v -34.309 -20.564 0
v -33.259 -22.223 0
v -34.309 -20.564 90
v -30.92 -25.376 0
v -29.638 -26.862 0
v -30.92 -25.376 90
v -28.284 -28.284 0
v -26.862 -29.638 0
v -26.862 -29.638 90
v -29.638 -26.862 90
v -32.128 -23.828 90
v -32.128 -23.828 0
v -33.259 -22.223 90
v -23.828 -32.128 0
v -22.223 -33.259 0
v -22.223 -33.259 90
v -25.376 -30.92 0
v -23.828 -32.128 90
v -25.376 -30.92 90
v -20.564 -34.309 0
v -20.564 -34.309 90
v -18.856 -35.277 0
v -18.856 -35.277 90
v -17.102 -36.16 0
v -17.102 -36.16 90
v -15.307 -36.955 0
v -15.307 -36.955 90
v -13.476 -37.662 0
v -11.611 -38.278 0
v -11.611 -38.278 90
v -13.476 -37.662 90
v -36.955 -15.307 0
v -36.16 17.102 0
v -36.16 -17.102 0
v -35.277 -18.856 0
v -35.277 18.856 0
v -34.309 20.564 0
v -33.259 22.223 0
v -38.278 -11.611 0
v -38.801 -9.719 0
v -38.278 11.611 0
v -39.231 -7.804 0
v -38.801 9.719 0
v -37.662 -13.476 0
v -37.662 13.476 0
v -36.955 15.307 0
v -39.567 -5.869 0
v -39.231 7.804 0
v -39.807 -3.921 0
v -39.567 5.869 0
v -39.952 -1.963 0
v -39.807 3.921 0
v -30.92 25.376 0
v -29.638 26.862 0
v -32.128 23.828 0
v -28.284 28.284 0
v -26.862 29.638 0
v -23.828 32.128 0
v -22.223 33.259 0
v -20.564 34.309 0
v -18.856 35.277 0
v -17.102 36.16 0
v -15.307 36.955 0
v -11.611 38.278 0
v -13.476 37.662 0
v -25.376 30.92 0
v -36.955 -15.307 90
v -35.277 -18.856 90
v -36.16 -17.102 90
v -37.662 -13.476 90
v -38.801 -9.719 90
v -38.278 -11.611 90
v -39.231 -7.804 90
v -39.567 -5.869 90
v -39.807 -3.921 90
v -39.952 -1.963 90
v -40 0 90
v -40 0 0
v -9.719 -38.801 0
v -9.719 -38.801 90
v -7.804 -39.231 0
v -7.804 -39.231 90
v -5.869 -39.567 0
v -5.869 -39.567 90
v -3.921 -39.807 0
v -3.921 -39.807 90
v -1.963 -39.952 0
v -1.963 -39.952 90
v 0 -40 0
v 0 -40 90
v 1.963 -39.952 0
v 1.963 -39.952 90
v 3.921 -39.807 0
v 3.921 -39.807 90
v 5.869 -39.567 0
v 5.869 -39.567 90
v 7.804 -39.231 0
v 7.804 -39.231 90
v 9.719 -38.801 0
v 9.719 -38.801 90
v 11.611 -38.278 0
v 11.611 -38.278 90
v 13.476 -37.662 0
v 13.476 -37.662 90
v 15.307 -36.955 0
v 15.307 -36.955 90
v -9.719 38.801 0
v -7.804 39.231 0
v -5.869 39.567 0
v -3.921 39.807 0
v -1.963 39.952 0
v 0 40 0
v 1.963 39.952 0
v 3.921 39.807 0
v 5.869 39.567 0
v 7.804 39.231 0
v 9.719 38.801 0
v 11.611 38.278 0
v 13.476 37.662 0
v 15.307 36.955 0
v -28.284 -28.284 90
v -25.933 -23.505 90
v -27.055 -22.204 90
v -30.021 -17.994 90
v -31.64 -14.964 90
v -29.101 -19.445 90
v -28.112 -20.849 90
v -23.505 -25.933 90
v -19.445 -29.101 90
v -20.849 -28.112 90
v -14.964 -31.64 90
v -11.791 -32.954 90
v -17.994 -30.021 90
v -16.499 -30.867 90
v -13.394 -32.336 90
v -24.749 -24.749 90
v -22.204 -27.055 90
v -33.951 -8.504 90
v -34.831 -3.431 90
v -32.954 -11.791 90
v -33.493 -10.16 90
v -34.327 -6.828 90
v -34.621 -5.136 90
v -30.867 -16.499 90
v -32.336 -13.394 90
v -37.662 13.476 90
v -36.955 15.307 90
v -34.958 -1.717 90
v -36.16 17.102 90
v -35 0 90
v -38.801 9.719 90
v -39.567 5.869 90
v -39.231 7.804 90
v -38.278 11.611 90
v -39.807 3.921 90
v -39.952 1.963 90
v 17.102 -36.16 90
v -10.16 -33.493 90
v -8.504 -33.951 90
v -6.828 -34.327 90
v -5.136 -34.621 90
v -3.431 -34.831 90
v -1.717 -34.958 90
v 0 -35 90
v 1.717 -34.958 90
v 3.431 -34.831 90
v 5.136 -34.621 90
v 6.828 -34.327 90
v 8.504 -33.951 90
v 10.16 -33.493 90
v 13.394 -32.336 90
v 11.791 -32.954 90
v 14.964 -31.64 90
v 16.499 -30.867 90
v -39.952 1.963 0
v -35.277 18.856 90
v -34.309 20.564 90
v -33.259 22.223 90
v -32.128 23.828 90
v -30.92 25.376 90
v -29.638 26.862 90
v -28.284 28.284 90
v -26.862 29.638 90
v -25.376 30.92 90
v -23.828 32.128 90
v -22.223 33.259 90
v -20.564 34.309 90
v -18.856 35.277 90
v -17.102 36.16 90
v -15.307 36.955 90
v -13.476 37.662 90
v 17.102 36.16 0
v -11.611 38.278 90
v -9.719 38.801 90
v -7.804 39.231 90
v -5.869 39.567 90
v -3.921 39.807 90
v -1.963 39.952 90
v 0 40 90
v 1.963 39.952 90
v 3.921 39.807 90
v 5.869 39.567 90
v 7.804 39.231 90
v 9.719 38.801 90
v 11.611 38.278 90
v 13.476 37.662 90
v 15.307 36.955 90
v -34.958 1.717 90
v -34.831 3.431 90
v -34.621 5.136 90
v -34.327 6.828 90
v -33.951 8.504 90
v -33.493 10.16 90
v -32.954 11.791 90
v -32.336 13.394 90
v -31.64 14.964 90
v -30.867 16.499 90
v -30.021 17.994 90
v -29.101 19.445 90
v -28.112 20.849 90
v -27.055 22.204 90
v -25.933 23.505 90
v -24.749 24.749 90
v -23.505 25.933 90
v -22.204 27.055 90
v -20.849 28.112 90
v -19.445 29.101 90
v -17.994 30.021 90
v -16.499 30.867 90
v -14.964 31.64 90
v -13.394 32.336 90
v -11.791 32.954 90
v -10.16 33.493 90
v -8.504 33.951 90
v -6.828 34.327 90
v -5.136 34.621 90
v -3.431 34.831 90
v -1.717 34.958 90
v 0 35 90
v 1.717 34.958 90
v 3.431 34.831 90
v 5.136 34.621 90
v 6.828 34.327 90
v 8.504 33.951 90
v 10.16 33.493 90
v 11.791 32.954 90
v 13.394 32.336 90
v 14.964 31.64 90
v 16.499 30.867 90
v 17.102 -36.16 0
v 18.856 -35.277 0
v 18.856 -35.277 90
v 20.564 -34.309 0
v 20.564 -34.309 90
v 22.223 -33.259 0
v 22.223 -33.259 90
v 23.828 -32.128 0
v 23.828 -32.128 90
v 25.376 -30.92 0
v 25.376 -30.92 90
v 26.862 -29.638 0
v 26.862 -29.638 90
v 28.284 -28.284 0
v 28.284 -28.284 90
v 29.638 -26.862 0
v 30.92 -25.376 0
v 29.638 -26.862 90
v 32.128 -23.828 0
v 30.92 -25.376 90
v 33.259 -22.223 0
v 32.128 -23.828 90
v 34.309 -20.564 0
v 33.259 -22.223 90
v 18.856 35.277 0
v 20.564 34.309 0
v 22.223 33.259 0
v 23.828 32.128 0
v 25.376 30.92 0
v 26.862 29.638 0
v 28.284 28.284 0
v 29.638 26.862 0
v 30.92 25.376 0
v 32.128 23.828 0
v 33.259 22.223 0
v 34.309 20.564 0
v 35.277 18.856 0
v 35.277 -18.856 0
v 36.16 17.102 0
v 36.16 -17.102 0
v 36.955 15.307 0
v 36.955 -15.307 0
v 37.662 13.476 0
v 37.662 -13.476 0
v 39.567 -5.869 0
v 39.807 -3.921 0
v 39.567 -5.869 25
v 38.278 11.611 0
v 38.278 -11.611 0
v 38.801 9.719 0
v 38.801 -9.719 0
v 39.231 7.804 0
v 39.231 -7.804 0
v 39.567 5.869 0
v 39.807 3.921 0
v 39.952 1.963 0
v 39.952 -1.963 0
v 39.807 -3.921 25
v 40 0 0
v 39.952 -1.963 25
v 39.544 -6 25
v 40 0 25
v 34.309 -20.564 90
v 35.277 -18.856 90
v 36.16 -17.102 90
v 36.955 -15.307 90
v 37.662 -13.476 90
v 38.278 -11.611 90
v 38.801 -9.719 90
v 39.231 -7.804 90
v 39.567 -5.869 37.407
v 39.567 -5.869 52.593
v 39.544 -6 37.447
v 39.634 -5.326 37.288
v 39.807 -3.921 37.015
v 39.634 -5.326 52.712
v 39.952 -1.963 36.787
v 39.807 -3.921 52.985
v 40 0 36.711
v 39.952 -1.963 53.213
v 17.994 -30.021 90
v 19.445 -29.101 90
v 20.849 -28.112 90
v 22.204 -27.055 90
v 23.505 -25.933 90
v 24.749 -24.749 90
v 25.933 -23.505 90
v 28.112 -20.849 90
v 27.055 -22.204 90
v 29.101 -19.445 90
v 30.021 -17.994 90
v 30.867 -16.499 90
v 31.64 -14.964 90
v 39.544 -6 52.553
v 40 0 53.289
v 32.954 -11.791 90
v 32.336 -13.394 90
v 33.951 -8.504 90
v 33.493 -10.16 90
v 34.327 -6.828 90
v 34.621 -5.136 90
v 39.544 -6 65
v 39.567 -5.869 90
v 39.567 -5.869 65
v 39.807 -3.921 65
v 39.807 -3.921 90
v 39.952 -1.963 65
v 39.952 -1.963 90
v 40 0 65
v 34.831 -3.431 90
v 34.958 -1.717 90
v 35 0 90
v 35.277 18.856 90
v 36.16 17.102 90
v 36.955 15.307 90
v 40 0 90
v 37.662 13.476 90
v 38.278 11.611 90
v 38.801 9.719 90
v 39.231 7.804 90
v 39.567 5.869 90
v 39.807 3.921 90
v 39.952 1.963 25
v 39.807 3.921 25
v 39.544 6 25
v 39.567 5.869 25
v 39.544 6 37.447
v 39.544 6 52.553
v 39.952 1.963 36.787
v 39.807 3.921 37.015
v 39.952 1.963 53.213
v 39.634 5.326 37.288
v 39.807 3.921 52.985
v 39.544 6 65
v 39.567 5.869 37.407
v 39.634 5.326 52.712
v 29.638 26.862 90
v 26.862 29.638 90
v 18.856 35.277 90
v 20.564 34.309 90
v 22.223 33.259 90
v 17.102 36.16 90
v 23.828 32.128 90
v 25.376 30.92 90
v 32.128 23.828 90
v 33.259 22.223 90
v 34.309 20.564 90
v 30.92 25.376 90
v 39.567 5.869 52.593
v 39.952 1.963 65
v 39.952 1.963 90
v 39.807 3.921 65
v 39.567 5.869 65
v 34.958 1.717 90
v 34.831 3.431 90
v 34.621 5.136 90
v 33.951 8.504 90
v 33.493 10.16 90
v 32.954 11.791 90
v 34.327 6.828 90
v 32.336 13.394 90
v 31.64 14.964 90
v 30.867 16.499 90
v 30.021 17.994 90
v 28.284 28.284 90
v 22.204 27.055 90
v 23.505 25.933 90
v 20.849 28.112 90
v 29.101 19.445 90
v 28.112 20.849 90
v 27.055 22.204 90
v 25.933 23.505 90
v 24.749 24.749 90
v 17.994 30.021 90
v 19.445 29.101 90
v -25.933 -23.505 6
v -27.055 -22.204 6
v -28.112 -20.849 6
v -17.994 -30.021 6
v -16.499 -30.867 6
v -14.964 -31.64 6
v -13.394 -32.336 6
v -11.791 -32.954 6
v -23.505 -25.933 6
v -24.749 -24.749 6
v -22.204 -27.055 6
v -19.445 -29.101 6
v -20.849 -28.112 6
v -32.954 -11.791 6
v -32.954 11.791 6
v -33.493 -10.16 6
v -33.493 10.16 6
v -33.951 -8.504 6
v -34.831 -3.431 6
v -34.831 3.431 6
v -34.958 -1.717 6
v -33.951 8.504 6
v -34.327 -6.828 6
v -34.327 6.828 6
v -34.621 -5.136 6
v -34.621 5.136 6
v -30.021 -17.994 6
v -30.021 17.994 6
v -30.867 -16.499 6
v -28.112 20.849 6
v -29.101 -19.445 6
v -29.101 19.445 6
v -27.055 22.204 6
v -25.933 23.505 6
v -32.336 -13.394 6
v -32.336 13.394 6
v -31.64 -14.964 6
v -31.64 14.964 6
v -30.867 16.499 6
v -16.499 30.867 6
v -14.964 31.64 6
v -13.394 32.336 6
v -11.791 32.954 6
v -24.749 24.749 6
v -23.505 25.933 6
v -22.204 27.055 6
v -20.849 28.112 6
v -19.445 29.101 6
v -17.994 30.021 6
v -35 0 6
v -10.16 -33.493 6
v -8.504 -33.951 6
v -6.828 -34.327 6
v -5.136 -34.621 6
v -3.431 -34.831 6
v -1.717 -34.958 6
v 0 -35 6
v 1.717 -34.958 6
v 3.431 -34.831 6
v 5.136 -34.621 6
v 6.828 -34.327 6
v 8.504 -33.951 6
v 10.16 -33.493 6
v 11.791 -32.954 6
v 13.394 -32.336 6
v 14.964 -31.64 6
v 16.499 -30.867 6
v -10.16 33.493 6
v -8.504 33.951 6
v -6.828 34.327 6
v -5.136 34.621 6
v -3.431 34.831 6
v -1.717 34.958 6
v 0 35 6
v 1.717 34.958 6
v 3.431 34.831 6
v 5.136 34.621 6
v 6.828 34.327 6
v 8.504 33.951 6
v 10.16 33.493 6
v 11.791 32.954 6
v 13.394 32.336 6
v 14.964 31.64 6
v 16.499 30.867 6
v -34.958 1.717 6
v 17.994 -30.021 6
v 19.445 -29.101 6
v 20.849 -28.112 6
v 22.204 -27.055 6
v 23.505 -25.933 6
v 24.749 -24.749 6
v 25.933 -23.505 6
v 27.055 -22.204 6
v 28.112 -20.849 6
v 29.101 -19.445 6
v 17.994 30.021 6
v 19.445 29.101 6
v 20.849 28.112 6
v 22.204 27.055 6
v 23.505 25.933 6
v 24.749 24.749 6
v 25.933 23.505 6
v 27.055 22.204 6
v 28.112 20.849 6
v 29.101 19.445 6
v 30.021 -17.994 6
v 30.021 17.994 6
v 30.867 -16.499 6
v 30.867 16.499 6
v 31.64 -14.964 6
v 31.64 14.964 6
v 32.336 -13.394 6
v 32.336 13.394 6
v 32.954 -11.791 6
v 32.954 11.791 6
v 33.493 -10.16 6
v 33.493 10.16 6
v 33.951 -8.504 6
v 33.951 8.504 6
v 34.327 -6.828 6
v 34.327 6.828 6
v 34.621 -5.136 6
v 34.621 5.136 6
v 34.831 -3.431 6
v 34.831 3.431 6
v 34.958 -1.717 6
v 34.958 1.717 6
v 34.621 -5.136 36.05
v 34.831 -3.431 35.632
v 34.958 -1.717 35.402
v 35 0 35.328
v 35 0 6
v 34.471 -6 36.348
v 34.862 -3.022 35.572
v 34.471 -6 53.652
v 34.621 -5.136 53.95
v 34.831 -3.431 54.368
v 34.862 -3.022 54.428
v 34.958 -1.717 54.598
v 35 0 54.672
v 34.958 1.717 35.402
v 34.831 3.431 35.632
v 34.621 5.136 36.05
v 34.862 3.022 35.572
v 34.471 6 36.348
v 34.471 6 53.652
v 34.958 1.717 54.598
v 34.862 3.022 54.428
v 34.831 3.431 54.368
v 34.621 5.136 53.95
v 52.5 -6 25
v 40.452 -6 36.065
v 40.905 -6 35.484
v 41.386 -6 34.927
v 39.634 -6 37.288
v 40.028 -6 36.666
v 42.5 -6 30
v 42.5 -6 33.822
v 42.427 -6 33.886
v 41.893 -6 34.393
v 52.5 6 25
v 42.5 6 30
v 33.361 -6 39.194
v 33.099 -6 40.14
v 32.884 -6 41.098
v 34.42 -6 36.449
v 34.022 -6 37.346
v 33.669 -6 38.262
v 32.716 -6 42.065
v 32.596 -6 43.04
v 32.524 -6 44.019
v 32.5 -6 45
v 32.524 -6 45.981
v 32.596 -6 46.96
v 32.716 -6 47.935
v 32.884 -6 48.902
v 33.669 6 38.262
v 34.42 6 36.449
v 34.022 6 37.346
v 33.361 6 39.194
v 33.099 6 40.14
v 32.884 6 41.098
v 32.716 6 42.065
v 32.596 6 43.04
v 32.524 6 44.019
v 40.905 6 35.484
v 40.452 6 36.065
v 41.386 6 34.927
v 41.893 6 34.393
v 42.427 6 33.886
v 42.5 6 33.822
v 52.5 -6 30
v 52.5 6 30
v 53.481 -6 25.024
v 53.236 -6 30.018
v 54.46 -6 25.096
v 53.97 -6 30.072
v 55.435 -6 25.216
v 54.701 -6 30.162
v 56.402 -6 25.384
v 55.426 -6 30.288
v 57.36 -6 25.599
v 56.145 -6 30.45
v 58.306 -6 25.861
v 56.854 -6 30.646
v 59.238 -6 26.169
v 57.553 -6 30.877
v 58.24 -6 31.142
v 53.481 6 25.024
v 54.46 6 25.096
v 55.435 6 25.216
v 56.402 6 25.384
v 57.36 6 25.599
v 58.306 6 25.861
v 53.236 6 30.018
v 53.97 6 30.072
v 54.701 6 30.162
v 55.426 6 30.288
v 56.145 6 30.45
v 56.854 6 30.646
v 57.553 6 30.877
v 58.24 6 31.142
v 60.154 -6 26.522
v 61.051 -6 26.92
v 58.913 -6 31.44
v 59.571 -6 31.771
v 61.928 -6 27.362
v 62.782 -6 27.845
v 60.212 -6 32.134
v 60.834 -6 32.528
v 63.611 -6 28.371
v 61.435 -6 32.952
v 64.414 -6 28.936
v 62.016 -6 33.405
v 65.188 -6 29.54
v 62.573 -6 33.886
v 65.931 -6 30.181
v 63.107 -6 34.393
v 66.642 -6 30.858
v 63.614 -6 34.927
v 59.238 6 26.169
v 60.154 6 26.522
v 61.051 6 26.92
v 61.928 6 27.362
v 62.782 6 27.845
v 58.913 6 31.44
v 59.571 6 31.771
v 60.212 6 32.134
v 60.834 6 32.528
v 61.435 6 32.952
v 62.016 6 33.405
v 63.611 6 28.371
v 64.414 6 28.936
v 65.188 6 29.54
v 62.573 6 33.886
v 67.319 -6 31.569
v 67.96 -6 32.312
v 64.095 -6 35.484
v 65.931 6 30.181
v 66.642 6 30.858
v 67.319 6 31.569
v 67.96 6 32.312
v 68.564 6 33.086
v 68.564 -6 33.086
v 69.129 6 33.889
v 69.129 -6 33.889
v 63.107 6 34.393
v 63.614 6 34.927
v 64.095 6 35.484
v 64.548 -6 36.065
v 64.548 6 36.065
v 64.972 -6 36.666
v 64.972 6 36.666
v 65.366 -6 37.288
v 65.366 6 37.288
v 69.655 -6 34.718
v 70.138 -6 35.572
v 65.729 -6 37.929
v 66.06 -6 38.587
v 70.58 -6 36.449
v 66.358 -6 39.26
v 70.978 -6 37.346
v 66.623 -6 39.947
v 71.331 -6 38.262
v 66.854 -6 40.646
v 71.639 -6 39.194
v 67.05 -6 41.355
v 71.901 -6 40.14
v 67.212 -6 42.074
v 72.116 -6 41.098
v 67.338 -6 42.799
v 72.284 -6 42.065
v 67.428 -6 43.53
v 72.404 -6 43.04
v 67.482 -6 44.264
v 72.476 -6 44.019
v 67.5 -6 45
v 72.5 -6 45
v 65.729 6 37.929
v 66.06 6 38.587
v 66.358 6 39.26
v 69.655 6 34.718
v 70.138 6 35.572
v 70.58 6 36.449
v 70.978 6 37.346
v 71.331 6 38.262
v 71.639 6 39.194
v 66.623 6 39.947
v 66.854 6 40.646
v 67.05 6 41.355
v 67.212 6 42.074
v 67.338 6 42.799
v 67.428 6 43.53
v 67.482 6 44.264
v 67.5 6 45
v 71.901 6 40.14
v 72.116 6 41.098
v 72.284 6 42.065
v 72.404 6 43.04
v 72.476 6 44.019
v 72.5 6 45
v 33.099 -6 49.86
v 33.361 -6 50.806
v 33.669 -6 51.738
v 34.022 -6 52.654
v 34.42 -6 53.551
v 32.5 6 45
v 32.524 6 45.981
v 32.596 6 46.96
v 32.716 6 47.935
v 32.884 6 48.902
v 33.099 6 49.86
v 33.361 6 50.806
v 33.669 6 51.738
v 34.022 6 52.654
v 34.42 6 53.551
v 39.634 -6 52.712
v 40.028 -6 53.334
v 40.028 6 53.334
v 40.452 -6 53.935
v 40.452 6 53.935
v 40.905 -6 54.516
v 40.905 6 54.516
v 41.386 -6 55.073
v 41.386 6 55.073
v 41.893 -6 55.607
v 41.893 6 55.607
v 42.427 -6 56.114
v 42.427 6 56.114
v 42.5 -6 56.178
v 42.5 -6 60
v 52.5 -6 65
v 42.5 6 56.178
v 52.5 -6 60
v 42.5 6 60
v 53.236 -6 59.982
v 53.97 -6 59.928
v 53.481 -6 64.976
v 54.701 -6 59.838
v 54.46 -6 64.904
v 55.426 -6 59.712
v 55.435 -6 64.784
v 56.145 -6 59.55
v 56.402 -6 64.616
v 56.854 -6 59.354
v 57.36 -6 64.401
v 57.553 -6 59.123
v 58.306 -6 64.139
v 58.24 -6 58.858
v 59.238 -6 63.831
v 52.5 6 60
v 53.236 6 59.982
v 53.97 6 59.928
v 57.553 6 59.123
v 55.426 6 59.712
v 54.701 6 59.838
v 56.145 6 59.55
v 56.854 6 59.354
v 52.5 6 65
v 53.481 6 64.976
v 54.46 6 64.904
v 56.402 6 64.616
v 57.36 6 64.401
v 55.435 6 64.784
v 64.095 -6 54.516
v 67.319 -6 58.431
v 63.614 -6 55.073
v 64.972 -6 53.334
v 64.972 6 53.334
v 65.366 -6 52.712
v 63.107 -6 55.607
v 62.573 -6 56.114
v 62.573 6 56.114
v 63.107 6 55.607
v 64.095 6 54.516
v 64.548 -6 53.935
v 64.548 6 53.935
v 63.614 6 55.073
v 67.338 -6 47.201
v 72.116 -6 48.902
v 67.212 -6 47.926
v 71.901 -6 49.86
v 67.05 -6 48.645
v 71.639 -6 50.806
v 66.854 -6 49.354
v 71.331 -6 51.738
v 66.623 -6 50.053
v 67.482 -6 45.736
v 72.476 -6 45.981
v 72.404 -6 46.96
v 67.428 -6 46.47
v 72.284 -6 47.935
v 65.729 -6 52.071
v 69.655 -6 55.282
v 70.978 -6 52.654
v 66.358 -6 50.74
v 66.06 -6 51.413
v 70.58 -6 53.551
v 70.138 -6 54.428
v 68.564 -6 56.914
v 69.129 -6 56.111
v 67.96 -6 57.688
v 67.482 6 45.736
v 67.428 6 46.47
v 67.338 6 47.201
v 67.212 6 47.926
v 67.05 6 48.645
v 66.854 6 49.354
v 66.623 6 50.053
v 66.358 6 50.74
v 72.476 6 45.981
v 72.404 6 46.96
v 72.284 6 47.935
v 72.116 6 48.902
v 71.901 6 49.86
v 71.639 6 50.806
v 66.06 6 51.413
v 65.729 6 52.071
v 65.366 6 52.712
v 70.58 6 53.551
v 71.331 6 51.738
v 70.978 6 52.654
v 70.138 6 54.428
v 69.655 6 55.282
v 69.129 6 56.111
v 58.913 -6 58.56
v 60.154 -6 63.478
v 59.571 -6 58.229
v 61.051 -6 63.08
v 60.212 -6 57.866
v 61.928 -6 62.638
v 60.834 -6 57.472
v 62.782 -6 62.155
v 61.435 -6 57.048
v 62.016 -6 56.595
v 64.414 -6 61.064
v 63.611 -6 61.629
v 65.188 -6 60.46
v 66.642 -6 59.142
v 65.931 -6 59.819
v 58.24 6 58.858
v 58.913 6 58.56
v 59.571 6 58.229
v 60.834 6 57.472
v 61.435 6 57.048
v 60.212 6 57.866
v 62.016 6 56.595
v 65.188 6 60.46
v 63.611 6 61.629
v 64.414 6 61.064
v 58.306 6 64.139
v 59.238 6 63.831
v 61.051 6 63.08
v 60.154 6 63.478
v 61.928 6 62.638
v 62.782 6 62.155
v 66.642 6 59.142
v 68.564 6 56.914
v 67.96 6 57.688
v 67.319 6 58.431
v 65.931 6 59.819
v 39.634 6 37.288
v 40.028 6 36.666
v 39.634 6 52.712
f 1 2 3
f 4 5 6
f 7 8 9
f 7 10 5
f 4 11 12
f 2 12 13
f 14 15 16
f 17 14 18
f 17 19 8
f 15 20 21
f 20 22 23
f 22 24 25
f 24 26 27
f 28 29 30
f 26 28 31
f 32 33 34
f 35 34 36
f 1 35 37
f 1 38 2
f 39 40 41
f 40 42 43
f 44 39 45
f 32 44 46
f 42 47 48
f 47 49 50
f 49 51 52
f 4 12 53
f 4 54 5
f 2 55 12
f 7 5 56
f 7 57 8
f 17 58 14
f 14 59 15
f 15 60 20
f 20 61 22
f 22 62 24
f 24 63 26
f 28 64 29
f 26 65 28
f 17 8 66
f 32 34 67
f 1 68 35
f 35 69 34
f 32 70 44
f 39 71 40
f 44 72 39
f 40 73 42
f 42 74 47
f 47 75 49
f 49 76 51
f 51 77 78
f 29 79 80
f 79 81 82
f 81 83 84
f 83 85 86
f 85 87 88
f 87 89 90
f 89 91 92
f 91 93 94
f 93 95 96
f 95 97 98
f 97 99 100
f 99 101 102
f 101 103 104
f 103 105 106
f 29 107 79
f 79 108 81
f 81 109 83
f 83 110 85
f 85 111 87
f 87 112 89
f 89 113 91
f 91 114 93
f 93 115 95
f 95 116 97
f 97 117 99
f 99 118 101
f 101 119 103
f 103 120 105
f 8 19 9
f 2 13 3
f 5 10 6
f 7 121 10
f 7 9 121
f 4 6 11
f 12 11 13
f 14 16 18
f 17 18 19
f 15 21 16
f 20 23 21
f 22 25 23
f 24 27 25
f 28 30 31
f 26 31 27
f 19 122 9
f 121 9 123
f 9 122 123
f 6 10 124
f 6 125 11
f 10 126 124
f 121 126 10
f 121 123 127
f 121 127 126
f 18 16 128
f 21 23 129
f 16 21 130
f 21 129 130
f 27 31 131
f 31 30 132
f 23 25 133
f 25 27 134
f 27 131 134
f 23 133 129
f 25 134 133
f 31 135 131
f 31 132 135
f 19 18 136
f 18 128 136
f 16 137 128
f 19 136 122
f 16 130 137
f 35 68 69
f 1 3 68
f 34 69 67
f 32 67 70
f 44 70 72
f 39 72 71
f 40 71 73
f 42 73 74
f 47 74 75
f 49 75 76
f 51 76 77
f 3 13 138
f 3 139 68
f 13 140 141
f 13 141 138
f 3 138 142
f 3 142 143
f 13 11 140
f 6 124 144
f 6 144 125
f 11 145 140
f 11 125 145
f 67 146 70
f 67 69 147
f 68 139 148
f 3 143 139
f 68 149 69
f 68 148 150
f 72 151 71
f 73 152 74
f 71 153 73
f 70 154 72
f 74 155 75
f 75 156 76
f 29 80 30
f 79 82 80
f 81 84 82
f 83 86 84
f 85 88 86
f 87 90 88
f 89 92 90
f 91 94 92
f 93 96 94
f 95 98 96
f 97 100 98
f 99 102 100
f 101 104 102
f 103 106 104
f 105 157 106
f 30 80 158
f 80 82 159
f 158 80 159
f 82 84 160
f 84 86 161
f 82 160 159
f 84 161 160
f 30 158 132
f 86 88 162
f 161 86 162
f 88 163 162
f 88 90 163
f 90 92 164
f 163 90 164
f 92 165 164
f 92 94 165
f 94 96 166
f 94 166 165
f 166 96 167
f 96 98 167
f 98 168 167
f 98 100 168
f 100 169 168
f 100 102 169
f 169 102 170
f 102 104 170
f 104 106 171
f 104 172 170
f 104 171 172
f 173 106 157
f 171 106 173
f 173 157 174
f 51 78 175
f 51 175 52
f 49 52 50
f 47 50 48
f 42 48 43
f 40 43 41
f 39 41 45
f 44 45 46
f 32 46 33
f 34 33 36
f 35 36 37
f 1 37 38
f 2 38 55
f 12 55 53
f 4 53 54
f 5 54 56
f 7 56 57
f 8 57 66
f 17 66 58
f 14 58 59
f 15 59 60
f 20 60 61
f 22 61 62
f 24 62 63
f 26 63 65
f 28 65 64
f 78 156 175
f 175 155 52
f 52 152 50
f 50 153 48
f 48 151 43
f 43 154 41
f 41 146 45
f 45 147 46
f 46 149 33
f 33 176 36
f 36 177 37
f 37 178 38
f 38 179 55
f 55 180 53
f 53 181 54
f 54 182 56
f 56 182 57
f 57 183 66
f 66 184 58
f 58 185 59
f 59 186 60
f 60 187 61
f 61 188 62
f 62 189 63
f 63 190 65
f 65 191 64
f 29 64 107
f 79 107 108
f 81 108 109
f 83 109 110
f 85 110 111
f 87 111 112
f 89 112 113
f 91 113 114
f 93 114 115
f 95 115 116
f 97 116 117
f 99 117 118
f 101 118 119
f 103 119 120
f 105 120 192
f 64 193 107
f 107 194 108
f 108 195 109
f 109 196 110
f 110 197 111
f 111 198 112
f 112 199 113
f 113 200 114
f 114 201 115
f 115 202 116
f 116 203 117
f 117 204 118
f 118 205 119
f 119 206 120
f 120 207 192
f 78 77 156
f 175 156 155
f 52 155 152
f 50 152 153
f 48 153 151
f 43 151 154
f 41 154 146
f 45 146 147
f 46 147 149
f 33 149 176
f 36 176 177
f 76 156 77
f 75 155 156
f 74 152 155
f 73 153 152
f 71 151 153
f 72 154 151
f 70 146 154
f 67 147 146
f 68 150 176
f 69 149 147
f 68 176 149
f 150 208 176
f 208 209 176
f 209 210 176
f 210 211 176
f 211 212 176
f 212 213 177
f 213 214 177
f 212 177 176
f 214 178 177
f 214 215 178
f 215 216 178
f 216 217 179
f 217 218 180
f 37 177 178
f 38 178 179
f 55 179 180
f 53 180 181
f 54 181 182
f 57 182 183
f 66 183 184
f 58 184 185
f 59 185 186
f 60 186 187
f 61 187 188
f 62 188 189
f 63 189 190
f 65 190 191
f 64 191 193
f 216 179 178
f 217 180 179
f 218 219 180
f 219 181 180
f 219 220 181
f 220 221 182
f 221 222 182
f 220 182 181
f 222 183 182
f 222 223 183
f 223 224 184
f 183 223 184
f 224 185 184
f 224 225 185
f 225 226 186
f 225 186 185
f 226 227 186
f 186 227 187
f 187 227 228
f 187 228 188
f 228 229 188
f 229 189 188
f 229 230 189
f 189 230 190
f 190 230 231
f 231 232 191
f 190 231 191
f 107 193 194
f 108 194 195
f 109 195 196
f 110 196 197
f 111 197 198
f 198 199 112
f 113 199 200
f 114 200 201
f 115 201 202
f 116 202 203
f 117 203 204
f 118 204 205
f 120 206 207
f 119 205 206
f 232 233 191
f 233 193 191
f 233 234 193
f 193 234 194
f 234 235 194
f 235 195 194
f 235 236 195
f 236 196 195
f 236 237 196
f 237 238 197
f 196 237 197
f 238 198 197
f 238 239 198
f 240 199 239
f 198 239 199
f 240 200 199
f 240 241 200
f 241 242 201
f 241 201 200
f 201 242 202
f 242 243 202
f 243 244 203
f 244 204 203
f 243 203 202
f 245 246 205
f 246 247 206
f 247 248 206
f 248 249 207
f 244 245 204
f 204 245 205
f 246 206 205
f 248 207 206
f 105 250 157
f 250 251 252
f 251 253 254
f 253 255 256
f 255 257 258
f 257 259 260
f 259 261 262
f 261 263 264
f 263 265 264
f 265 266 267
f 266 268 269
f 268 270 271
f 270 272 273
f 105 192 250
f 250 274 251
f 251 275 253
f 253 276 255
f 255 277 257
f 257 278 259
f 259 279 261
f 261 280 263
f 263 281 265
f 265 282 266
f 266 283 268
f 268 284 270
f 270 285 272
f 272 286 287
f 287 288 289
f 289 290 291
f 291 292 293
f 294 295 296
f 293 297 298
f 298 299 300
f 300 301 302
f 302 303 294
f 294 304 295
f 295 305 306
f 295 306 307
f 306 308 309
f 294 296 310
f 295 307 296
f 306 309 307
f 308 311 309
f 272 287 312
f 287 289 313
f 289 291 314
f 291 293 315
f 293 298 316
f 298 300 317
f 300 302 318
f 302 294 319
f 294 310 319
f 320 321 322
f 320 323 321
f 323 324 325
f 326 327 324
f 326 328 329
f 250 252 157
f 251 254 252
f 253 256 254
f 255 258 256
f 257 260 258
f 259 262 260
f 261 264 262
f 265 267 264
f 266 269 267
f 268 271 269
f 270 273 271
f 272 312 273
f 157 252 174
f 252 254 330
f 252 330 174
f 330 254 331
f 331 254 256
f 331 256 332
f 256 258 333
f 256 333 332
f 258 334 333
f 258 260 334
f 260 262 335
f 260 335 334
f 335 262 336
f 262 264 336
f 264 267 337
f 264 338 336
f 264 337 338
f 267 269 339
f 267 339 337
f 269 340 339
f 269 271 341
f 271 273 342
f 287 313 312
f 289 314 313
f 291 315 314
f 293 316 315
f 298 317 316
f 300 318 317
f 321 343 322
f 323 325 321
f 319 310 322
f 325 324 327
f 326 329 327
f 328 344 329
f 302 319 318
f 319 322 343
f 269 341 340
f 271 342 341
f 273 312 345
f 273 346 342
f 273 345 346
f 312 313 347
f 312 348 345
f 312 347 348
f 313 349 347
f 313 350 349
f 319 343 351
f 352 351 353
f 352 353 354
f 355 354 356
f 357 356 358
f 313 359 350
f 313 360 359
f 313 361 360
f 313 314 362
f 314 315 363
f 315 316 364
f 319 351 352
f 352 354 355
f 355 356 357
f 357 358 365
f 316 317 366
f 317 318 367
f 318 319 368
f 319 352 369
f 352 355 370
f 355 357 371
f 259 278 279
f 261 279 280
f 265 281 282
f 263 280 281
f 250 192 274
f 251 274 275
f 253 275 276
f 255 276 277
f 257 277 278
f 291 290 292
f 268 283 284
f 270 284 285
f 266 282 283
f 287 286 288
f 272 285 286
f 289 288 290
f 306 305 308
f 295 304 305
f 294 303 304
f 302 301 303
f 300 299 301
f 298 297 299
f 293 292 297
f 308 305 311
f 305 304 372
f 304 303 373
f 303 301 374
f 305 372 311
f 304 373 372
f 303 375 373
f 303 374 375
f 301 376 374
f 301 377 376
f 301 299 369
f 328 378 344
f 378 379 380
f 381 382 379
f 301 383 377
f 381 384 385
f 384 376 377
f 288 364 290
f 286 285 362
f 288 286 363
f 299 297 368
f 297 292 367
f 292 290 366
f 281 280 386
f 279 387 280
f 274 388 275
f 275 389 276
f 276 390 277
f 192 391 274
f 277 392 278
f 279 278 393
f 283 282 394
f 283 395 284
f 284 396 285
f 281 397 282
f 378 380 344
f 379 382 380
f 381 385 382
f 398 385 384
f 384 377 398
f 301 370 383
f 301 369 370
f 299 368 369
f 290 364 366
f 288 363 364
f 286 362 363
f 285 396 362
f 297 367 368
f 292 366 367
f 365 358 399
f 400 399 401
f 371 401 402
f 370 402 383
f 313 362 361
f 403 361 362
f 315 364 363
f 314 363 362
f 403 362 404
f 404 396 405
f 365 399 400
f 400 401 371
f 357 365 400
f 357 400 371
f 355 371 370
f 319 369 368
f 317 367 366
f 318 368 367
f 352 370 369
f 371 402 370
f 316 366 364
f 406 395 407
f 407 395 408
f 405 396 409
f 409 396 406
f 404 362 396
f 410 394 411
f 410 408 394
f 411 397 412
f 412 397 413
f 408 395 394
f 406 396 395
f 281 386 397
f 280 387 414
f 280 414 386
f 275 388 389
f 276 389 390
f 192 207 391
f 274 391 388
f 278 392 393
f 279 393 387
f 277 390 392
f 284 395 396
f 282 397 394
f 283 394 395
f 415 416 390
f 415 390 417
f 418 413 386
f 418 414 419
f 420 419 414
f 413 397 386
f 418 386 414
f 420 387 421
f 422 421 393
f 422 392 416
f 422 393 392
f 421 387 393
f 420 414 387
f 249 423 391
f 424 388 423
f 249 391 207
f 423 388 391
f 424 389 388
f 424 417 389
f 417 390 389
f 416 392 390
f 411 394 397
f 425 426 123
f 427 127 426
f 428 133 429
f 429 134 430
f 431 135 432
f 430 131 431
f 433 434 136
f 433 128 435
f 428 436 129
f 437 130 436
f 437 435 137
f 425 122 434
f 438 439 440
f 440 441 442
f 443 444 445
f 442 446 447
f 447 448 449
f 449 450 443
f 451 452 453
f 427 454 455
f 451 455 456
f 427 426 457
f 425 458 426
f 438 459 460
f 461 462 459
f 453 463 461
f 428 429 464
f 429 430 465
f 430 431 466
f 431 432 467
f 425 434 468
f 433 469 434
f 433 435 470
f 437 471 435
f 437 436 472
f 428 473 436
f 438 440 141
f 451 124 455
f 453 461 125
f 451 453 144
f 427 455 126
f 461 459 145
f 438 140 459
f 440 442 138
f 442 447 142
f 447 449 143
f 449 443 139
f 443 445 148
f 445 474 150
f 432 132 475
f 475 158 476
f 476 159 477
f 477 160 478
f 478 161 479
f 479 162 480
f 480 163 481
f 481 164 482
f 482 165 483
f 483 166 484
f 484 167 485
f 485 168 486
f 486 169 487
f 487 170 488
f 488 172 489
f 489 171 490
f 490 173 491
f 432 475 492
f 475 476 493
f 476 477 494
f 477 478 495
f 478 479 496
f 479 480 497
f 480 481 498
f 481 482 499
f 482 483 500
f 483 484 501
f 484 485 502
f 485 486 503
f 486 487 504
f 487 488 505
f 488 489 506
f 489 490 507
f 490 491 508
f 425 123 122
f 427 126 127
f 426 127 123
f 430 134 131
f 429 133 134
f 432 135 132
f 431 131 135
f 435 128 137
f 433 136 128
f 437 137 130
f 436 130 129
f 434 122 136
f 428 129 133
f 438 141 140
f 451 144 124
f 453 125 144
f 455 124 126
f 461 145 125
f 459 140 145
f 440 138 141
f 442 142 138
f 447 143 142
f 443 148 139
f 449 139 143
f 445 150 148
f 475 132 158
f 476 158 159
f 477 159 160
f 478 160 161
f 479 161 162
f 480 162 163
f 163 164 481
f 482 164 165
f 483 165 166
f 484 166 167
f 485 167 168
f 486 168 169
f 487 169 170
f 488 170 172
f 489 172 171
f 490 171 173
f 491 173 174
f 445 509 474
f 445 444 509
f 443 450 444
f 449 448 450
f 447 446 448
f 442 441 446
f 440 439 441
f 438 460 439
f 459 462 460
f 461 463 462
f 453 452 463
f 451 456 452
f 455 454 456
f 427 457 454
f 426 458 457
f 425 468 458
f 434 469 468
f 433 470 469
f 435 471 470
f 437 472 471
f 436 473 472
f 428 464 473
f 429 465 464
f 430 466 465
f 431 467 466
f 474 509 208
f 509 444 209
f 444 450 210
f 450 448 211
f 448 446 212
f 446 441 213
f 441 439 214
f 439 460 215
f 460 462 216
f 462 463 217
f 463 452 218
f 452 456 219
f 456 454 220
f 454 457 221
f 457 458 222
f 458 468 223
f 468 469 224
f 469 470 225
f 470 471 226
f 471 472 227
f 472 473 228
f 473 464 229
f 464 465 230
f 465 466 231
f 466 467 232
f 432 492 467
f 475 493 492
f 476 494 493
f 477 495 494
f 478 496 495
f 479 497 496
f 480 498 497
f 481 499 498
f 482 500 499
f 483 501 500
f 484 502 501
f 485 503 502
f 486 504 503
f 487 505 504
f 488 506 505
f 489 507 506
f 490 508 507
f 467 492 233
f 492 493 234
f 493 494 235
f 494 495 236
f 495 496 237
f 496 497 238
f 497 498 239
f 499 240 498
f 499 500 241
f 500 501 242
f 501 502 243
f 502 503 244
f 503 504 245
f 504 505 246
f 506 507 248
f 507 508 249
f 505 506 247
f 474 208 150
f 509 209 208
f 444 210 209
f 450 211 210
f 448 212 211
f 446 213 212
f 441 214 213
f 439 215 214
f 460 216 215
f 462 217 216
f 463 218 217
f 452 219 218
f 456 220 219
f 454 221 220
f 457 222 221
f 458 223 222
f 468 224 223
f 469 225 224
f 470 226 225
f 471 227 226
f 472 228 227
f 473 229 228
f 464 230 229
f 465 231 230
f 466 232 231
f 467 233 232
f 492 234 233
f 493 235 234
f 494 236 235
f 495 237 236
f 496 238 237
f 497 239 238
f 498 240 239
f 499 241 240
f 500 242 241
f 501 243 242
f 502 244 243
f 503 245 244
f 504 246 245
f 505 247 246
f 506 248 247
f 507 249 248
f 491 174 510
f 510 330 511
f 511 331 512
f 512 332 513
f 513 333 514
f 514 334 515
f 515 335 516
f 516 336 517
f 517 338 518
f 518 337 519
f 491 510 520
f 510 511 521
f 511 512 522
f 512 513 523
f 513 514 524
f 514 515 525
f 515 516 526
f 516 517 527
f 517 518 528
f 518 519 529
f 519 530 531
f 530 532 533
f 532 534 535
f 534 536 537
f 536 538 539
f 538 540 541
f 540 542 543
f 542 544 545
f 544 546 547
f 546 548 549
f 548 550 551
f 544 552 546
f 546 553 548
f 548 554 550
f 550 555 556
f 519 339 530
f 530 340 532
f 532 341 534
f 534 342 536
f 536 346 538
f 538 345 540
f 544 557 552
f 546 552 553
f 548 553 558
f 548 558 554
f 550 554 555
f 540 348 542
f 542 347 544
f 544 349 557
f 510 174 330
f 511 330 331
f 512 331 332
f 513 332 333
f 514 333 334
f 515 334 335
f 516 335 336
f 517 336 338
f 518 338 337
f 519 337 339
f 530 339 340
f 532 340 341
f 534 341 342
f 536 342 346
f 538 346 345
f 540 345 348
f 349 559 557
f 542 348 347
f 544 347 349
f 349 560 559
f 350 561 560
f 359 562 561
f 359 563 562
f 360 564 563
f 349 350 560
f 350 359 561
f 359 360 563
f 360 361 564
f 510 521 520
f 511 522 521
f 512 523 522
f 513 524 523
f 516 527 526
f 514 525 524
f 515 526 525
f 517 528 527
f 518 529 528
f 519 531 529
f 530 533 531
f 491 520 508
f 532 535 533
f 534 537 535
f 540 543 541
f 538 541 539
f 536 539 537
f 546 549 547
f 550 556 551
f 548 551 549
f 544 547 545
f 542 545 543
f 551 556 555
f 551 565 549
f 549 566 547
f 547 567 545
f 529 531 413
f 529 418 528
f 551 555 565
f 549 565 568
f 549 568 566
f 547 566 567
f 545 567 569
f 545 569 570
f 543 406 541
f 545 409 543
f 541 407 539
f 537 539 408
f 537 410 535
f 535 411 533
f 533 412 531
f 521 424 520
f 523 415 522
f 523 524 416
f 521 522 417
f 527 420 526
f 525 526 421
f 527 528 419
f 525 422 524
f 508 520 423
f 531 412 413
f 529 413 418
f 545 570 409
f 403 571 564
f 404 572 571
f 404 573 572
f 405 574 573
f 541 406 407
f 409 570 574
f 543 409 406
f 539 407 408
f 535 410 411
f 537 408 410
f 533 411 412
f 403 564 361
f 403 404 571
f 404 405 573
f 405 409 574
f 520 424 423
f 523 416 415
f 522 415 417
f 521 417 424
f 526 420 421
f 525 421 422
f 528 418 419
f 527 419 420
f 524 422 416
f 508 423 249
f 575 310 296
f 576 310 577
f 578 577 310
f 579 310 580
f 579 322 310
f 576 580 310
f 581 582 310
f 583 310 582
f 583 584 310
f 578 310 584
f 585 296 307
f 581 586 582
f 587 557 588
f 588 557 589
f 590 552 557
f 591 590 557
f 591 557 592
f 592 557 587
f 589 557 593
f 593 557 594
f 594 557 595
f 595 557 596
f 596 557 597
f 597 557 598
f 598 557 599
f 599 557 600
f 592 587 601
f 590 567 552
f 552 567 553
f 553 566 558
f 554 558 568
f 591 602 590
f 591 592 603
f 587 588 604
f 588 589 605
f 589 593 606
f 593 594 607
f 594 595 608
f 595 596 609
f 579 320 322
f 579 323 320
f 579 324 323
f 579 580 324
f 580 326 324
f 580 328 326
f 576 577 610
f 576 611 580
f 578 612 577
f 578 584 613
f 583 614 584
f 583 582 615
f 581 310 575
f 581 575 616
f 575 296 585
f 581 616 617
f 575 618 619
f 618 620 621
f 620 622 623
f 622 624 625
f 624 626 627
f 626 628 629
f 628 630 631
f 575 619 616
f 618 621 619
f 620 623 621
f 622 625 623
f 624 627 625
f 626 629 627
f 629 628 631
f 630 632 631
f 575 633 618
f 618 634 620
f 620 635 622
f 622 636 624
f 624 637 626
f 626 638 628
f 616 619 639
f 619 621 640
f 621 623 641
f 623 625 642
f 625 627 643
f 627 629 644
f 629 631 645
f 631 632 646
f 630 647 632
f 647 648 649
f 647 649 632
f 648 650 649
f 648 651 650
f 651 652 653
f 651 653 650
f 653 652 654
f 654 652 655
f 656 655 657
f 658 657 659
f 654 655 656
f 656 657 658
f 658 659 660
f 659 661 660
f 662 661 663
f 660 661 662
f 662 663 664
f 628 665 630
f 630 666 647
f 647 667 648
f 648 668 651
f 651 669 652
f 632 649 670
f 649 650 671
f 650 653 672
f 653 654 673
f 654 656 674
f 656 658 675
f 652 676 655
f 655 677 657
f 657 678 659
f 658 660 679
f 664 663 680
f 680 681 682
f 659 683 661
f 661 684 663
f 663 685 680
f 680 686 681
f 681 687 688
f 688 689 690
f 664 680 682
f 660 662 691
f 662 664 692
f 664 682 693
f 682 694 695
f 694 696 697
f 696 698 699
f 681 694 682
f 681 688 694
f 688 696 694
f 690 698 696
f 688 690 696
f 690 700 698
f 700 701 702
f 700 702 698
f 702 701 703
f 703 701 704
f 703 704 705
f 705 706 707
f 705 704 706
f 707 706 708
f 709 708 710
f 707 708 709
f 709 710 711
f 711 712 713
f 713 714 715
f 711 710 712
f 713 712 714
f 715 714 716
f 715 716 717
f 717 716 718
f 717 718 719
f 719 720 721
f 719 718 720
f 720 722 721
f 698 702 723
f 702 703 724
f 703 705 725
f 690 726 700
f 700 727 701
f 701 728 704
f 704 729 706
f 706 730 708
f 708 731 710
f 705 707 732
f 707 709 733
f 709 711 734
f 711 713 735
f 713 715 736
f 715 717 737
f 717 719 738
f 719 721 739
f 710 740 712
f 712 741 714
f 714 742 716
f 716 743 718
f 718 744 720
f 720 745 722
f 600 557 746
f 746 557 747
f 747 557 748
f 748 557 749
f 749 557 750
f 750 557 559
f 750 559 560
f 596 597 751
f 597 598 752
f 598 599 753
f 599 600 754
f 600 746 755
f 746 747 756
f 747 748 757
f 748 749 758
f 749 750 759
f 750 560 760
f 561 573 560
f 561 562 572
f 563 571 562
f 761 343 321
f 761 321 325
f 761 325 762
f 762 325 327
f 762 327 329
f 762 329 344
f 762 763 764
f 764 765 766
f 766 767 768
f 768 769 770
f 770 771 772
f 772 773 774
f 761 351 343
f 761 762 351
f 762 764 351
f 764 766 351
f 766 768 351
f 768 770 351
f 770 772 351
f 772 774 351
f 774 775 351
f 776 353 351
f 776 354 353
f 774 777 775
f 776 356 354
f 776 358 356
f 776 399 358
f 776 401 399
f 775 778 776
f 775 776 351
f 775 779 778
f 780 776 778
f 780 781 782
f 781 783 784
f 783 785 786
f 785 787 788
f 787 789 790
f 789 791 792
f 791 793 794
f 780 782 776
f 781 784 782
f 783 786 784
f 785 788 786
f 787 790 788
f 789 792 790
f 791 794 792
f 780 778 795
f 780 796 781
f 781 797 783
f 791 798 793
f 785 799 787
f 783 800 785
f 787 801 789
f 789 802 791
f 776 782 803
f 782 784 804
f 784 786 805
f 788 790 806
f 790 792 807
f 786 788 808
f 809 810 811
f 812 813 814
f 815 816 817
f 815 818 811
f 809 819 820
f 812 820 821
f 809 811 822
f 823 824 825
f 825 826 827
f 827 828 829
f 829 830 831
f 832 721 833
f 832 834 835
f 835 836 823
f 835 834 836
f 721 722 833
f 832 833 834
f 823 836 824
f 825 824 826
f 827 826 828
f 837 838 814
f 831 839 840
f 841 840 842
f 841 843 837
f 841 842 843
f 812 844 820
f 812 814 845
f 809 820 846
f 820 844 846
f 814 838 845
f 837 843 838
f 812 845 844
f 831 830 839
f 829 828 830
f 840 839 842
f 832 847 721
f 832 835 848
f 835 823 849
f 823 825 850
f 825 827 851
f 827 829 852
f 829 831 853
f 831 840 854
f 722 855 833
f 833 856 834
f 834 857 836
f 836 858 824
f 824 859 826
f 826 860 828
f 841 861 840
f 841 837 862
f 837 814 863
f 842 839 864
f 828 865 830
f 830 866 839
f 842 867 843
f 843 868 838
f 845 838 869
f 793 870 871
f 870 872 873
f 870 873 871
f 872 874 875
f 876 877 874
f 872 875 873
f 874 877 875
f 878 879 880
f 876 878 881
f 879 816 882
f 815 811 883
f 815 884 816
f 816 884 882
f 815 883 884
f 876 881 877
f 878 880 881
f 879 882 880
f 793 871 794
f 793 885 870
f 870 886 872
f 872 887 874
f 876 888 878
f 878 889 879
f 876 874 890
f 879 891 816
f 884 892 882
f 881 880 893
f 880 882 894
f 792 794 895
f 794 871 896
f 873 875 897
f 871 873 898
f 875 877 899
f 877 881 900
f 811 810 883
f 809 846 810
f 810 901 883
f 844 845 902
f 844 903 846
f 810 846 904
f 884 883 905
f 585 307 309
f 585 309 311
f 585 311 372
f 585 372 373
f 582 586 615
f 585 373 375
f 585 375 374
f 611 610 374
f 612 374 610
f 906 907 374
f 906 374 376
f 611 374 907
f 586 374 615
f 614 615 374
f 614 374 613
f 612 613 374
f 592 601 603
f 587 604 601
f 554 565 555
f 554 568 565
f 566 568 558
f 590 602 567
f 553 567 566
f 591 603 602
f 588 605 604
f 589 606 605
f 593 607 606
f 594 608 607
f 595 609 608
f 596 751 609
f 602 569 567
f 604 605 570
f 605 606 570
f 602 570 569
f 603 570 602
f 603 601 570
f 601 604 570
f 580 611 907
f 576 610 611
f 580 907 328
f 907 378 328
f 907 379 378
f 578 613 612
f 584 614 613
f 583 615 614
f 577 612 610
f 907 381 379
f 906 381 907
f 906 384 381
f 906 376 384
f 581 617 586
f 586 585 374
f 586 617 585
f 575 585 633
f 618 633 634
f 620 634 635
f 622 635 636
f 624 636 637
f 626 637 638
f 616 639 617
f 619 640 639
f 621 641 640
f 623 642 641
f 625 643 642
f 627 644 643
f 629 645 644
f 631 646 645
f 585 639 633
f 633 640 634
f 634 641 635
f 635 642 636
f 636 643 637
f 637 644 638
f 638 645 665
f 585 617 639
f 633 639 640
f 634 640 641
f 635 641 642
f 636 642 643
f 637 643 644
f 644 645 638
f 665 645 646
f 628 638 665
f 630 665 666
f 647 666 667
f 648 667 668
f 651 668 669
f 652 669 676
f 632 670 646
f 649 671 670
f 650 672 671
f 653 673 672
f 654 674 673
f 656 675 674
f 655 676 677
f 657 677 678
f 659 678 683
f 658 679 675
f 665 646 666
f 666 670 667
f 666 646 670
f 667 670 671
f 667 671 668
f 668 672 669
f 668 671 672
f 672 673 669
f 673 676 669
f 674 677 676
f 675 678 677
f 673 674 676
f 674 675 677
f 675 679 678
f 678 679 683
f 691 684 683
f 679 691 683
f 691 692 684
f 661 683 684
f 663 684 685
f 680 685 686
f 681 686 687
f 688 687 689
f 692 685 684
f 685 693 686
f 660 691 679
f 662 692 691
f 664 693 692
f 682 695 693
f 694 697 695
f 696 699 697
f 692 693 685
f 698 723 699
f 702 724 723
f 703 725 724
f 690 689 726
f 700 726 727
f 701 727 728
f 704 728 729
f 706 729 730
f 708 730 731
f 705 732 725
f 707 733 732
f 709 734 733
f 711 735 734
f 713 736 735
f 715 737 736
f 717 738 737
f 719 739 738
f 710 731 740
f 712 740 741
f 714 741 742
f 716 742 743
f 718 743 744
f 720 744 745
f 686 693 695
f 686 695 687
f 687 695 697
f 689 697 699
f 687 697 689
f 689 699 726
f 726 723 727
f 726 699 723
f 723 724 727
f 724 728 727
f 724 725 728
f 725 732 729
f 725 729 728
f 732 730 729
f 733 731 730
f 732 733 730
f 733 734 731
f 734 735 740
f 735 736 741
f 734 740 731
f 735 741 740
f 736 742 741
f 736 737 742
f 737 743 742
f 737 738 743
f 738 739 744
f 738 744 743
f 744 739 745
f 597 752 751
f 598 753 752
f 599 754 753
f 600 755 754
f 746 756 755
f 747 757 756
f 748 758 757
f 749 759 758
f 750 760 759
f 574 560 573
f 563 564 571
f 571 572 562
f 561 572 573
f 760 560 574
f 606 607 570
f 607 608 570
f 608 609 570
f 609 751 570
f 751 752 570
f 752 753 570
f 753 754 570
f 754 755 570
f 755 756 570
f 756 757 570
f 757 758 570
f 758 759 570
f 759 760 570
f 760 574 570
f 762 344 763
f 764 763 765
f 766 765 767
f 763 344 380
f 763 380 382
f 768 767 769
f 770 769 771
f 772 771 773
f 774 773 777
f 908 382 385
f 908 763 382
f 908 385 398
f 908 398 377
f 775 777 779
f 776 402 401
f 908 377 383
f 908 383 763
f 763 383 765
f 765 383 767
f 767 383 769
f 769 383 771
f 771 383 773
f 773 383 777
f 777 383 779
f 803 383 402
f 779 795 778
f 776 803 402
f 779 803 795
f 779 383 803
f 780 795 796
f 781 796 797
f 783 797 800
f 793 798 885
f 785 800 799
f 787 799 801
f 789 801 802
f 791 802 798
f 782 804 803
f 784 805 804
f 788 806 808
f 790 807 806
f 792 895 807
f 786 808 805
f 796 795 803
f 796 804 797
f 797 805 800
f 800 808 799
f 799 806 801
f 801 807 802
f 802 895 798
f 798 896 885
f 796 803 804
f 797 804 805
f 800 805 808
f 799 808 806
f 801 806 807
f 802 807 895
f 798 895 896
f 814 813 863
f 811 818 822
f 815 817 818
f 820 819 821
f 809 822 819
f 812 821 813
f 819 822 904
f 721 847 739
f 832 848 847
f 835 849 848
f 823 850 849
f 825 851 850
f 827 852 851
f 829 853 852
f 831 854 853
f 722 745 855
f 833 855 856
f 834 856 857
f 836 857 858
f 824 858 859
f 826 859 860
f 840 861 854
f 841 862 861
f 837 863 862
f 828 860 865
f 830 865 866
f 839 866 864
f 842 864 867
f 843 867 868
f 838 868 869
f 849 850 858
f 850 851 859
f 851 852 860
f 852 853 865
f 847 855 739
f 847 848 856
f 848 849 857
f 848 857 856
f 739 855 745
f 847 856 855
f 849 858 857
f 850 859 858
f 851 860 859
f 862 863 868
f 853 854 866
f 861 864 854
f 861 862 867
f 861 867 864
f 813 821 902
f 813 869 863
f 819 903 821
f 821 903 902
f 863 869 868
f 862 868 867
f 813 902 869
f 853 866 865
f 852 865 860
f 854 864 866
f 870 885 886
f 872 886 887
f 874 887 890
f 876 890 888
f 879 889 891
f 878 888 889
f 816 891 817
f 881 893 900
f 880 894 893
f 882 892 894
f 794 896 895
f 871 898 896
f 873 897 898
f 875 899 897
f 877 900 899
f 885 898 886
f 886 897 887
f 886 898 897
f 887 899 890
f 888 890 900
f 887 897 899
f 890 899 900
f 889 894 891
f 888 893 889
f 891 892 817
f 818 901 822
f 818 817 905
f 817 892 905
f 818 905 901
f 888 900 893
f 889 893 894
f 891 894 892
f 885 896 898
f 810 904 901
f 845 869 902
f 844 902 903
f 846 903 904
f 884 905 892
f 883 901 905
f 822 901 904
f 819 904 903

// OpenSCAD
$fn = 128;

mug_od = 80;
mug_id = 70;
mug_h = 90;
bottom_t = 6;

handle_open_w = 25;
handle_open_h = 30;
handle_wall = 5;
handle_depth = 12;

outer_r = mug_od / 2;
inner_r = mug_id / 2;

handle_outer_w = handle_open_w + 2 * handle_wall;
handle_outer_h = handle_open_h + 2 * handle_wall;

handle_x = outer_r - 2.5;
handle_z = (mug_h - handle_outer_h) / 2;

module d_shape(w, h) {
    r = h / 2;
    union() {
        square([w - r, h], center = false);
        translate([w - r, h / 2])
            circle(r = r);
    }
}

module mug_body() {
    difference() {
        cylinder(h = mug_h, r = outer_r);
        translate([0, 0, bottom_t])
            cylinder(h = mug_h - bottom_t + 0.1, r = inner_r);
    }
}

module handle() {
    translate([handle_x, 0, handle_z])
        rotate([90, 0, 0])
            linear_extrude(height = handle_depth, center = true, convexity = 10)
                difference() {
                    d_shape(handle_outer_w, handle_outer_h);
                    translate([handle_wall, handle_wall])
                        d_shape(handle_open_w, handle_open_h);
                }
}

union() {
    mug_body();
    handle();
}
